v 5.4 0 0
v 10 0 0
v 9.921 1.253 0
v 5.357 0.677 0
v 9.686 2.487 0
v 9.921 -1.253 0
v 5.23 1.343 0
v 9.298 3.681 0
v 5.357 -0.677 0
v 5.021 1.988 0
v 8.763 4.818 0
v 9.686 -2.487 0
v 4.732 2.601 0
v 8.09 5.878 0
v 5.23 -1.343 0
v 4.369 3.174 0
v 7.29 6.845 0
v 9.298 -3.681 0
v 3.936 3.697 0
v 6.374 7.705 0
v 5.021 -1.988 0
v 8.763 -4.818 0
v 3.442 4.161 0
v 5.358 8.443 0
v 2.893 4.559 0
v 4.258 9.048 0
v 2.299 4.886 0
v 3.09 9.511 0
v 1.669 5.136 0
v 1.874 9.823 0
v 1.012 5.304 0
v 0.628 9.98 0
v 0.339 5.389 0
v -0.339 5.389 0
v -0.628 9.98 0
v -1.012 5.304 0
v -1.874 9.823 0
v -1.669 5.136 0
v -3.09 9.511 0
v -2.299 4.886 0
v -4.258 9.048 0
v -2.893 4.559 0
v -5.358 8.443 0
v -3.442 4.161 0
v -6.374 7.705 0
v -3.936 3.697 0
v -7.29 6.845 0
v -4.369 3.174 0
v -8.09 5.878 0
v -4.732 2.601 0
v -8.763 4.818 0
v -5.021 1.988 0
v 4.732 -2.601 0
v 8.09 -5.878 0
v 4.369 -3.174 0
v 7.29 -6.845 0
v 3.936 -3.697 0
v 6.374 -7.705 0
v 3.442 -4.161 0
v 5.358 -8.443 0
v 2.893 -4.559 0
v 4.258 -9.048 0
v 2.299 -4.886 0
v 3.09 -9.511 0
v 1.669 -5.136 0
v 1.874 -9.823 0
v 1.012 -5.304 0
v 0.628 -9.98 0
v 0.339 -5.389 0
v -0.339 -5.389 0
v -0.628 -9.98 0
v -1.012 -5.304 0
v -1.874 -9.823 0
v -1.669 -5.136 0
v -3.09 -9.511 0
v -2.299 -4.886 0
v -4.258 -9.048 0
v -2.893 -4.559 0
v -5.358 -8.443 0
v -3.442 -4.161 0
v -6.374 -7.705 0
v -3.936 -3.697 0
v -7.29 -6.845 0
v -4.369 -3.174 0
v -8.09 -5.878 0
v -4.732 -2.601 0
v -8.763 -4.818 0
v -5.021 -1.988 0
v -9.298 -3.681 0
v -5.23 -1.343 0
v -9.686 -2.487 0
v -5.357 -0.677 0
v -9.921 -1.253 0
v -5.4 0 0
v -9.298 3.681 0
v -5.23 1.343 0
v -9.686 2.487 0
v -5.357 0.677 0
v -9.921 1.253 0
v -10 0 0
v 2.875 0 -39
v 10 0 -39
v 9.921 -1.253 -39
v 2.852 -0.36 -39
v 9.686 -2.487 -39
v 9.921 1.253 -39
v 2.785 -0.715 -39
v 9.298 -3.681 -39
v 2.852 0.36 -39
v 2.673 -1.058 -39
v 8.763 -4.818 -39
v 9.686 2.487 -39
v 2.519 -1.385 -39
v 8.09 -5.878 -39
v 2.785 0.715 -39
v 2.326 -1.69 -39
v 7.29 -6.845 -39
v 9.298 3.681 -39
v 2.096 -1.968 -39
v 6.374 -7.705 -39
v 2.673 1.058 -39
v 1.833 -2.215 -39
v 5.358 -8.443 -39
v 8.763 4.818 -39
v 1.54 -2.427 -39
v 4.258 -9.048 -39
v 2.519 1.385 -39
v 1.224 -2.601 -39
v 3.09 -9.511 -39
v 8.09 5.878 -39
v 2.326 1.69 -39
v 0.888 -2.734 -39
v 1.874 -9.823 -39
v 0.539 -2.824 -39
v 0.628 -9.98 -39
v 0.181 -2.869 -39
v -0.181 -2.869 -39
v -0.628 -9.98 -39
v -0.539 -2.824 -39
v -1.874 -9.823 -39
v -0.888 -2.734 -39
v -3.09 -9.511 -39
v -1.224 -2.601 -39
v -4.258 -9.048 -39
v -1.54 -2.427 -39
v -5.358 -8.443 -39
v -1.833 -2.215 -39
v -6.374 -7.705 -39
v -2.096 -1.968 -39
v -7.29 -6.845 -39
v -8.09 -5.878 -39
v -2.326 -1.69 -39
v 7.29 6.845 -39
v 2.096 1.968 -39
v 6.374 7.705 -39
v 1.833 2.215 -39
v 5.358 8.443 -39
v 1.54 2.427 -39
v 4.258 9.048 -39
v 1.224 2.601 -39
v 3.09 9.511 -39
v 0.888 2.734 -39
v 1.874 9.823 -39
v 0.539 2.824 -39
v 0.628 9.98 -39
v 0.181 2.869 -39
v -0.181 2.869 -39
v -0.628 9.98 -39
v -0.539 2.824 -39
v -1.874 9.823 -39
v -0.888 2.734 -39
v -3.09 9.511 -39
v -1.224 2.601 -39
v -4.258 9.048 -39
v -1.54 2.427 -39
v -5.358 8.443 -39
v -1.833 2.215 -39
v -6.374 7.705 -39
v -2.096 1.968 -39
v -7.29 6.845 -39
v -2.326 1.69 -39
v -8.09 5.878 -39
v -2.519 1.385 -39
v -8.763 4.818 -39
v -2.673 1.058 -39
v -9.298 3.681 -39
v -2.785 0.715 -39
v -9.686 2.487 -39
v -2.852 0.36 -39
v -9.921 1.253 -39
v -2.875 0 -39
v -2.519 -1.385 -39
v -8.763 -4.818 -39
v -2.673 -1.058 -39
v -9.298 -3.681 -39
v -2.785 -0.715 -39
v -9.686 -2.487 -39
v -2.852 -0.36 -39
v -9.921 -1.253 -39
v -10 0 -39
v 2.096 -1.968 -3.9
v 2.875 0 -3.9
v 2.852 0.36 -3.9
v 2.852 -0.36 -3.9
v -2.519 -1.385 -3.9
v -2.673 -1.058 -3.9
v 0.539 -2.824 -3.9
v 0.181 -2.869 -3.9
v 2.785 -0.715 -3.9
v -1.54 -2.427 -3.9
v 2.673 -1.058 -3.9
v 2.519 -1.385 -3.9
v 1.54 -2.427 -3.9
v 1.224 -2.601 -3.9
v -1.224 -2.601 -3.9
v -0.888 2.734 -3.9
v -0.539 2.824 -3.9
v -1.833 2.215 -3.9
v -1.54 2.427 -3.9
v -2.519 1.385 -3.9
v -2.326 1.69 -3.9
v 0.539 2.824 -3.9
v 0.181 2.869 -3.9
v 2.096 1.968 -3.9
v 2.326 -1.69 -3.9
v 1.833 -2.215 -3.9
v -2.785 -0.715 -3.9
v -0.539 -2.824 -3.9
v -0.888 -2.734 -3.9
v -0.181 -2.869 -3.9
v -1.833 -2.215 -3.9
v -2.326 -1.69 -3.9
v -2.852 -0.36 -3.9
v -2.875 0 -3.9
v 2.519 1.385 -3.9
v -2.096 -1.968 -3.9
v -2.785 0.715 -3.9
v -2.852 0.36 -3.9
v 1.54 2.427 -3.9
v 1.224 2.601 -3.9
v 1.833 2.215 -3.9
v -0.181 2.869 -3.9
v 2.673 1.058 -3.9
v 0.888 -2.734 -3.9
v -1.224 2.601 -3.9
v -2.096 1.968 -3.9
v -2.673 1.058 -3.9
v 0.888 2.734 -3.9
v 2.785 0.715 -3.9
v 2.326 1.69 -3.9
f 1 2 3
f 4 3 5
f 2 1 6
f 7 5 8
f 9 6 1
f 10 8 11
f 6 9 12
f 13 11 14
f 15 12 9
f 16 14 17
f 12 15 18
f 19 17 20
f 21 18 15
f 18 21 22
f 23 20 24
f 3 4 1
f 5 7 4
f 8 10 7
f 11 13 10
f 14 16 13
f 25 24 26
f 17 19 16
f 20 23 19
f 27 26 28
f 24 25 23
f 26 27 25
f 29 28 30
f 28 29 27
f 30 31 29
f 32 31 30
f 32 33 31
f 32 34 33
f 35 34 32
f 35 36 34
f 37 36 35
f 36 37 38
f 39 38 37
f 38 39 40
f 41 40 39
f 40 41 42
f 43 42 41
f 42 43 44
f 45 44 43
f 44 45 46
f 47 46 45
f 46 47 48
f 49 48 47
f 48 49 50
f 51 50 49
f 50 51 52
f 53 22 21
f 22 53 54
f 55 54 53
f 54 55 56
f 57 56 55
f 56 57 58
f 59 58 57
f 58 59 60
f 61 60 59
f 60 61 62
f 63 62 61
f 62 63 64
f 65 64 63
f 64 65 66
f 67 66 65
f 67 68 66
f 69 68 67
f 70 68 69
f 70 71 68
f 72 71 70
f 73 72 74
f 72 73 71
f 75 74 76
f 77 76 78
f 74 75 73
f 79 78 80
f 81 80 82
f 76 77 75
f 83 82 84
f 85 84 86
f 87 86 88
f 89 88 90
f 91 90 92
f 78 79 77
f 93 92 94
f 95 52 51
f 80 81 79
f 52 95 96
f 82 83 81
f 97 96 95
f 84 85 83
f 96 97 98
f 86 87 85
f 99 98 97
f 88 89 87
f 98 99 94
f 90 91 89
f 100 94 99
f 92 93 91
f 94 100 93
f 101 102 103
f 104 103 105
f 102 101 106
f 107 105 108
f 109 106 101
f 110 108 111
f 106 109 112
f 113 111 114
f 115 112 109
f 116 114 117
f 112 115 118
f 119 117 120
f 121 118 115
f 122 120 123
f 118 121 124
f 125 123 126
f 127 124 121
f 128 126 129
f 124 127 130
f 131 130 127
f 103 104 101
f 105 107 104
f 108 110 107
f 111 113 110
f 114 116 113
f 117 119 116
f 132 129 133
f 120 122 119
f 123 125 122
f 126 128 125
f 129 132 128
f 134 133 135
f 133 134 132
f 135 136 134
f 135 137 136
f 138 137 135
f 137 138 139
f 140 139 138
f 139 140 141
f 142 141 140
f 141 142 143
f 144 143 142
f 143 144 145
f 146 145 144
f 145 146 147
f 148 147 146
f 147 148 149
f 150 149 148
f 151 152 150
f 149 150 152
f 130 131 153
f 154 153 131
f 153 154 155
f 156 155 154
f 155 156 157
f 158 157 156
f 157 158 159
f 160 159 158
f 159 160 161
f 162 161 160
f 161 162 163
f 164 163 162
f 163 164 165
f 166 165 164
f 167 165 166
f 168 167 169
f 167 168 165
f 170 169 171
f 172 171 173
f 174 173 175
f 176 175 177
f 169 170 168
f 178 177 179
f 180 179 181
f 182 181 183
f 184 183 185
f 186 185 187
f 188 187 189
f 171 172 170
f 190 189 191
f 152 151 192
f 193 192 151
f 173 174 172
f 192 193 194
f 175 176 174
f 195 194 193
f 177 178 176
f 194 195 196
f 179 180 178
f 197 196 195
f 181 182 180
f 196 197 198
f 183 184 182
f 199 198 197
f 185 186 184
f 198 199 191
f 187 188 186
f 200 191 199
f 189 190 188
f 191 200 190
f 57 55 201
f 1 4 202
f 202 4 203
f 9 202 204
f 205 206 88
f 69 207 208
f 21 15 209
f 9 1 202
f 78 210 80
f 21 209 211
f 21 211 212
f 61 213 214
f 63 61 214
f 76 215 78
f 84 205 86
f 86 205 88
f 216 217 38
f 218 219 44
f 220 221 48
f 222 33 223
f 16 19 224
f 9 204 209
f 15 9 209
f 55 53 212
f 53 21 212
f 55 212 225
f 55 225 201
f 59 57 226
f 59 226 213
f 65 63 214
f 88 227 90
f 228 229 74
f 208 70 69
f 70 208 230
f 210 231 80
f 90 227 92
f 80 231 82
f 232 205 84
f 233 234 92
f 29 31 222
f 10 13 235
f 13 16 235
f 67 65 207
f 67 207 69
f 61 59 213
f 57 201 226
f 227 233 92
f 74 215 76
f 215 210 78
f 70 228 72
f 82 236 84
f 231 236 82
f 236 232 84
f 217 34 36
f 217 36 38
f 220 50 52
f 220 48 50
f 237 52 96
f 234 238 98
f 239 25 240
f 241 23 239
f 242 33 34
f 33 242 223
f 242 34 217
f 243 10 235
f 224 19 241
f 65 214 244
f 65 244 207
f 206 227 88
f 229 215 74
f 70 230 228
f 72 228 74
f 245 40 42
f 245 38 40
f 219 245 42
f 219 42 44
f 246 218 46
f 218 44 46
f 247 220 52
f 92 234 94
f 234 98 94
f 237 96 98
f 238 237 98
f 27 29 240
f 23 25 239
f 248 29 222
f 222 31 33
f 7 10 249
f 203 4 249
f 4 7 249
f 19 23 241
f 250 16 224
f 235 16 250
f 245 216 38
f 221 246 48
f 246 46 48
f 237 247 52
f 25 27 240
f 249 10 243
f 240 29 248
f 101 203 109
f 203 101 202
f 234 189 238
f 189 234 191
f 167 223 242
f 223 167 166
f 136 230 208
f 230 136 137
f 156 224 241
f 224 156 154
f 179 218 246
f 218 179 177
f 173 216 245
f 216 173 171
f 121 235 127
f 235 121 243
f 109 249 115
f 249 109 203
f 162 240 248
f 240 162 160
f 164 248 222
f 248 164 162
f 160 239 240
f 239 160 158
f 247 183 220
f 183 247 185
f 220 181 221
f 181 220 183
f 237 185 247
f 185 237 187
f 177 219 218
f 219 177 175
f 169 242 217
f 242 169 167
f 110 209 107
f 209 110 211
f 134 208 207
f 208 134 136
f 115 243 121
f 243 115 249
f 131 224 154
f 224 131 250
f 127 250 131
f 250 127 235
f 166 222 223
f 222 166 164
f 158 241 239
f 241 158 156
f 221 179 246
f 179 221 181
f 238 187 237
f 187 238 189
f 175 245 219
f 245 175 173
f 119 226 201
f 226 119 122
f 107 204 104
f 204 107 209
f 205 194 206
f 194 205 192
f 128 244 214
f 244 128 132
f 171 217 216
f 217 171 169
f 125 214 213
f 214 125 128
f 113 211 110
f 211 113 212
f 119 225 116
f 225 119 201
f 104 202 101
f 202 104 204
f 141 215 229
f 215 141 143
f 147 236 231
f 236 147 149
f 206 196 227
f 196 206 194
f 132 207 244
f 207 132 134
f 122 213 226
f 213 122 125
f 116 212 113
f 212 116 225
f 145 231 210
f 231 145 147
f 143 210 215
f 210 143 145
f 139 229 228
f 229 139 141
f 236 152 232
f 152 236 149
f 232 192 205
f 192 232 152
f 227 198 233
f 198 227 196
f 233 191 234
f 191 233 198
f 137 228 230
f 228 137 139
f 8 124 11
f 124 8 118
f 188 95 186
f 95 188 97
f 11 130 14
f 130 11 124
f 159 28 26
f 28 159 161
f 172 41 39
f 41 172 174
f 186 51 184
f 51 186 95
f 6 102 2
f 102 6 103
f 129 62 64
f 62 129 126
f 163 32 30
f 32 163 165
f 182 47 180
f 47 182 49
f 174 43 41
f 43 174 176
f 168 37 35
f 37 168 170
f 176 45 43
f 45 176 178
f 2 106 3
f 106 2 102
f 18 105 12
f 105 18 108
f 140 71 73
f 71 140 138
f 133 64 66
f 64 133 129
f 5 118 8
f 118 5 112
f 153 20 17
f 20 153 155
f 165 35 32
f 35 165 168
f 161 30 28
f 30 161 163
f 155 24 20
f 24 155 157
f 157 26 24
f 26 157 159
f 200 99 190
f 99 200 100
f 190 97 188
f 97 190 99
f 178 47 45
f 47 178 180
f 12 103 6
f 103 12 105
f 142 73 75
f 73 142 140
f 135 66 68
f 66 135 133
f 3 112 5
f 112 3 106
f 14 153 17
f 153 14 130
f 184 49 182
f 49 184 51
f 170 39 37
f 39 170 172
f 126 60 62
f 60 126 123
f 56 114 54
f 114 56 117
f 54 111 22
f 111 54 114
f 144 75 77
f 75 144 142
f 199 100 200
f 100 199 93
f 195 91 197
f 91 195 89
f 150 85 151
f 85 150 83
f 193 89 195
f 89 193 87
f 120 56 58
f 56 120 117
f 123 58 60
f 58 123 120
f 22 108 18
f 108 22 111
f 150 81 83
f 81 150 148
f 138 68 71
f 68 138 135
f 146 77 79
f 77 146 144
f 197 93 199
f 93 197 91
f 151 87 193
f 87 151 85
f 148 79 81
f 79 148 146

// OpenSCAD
$fn = 50;


difference() {
	union() {
		translate(v = [0, 0, -39.0000000000]) {
			cylinder(h = 39, r = 10.0000000000);
		}
		cylinder(h = 0, r = 20.0000000000);
	}
	union() {
		translate(v = [0, 0, 0]) {
			rotate(a = [0, 0, 0]) {
				difference() {
					union() {
						#translate(v = [0, 0, -39.0000000000]) {
							cylinder(h = 39, r = 2.6000000000);
						}
						#translate(v = [0, 0, -3.9000000000]) {
							cylinder(h = 3.9000000000, r = 10.0000000000, r1 = 2.8750000000, r2 = 5.4000000000);
						}
						#translate(v = [0, 0, -39.0000000000]) {
							cylinder(h = 39, r = 2.8750000000);
						}
						#translate(v = [0, 0, -39.0000000000]) {
							cylinder(h = 39, r = 2.6000000000);
						}
					}
					union();
				}
			}
		}
	}
}
